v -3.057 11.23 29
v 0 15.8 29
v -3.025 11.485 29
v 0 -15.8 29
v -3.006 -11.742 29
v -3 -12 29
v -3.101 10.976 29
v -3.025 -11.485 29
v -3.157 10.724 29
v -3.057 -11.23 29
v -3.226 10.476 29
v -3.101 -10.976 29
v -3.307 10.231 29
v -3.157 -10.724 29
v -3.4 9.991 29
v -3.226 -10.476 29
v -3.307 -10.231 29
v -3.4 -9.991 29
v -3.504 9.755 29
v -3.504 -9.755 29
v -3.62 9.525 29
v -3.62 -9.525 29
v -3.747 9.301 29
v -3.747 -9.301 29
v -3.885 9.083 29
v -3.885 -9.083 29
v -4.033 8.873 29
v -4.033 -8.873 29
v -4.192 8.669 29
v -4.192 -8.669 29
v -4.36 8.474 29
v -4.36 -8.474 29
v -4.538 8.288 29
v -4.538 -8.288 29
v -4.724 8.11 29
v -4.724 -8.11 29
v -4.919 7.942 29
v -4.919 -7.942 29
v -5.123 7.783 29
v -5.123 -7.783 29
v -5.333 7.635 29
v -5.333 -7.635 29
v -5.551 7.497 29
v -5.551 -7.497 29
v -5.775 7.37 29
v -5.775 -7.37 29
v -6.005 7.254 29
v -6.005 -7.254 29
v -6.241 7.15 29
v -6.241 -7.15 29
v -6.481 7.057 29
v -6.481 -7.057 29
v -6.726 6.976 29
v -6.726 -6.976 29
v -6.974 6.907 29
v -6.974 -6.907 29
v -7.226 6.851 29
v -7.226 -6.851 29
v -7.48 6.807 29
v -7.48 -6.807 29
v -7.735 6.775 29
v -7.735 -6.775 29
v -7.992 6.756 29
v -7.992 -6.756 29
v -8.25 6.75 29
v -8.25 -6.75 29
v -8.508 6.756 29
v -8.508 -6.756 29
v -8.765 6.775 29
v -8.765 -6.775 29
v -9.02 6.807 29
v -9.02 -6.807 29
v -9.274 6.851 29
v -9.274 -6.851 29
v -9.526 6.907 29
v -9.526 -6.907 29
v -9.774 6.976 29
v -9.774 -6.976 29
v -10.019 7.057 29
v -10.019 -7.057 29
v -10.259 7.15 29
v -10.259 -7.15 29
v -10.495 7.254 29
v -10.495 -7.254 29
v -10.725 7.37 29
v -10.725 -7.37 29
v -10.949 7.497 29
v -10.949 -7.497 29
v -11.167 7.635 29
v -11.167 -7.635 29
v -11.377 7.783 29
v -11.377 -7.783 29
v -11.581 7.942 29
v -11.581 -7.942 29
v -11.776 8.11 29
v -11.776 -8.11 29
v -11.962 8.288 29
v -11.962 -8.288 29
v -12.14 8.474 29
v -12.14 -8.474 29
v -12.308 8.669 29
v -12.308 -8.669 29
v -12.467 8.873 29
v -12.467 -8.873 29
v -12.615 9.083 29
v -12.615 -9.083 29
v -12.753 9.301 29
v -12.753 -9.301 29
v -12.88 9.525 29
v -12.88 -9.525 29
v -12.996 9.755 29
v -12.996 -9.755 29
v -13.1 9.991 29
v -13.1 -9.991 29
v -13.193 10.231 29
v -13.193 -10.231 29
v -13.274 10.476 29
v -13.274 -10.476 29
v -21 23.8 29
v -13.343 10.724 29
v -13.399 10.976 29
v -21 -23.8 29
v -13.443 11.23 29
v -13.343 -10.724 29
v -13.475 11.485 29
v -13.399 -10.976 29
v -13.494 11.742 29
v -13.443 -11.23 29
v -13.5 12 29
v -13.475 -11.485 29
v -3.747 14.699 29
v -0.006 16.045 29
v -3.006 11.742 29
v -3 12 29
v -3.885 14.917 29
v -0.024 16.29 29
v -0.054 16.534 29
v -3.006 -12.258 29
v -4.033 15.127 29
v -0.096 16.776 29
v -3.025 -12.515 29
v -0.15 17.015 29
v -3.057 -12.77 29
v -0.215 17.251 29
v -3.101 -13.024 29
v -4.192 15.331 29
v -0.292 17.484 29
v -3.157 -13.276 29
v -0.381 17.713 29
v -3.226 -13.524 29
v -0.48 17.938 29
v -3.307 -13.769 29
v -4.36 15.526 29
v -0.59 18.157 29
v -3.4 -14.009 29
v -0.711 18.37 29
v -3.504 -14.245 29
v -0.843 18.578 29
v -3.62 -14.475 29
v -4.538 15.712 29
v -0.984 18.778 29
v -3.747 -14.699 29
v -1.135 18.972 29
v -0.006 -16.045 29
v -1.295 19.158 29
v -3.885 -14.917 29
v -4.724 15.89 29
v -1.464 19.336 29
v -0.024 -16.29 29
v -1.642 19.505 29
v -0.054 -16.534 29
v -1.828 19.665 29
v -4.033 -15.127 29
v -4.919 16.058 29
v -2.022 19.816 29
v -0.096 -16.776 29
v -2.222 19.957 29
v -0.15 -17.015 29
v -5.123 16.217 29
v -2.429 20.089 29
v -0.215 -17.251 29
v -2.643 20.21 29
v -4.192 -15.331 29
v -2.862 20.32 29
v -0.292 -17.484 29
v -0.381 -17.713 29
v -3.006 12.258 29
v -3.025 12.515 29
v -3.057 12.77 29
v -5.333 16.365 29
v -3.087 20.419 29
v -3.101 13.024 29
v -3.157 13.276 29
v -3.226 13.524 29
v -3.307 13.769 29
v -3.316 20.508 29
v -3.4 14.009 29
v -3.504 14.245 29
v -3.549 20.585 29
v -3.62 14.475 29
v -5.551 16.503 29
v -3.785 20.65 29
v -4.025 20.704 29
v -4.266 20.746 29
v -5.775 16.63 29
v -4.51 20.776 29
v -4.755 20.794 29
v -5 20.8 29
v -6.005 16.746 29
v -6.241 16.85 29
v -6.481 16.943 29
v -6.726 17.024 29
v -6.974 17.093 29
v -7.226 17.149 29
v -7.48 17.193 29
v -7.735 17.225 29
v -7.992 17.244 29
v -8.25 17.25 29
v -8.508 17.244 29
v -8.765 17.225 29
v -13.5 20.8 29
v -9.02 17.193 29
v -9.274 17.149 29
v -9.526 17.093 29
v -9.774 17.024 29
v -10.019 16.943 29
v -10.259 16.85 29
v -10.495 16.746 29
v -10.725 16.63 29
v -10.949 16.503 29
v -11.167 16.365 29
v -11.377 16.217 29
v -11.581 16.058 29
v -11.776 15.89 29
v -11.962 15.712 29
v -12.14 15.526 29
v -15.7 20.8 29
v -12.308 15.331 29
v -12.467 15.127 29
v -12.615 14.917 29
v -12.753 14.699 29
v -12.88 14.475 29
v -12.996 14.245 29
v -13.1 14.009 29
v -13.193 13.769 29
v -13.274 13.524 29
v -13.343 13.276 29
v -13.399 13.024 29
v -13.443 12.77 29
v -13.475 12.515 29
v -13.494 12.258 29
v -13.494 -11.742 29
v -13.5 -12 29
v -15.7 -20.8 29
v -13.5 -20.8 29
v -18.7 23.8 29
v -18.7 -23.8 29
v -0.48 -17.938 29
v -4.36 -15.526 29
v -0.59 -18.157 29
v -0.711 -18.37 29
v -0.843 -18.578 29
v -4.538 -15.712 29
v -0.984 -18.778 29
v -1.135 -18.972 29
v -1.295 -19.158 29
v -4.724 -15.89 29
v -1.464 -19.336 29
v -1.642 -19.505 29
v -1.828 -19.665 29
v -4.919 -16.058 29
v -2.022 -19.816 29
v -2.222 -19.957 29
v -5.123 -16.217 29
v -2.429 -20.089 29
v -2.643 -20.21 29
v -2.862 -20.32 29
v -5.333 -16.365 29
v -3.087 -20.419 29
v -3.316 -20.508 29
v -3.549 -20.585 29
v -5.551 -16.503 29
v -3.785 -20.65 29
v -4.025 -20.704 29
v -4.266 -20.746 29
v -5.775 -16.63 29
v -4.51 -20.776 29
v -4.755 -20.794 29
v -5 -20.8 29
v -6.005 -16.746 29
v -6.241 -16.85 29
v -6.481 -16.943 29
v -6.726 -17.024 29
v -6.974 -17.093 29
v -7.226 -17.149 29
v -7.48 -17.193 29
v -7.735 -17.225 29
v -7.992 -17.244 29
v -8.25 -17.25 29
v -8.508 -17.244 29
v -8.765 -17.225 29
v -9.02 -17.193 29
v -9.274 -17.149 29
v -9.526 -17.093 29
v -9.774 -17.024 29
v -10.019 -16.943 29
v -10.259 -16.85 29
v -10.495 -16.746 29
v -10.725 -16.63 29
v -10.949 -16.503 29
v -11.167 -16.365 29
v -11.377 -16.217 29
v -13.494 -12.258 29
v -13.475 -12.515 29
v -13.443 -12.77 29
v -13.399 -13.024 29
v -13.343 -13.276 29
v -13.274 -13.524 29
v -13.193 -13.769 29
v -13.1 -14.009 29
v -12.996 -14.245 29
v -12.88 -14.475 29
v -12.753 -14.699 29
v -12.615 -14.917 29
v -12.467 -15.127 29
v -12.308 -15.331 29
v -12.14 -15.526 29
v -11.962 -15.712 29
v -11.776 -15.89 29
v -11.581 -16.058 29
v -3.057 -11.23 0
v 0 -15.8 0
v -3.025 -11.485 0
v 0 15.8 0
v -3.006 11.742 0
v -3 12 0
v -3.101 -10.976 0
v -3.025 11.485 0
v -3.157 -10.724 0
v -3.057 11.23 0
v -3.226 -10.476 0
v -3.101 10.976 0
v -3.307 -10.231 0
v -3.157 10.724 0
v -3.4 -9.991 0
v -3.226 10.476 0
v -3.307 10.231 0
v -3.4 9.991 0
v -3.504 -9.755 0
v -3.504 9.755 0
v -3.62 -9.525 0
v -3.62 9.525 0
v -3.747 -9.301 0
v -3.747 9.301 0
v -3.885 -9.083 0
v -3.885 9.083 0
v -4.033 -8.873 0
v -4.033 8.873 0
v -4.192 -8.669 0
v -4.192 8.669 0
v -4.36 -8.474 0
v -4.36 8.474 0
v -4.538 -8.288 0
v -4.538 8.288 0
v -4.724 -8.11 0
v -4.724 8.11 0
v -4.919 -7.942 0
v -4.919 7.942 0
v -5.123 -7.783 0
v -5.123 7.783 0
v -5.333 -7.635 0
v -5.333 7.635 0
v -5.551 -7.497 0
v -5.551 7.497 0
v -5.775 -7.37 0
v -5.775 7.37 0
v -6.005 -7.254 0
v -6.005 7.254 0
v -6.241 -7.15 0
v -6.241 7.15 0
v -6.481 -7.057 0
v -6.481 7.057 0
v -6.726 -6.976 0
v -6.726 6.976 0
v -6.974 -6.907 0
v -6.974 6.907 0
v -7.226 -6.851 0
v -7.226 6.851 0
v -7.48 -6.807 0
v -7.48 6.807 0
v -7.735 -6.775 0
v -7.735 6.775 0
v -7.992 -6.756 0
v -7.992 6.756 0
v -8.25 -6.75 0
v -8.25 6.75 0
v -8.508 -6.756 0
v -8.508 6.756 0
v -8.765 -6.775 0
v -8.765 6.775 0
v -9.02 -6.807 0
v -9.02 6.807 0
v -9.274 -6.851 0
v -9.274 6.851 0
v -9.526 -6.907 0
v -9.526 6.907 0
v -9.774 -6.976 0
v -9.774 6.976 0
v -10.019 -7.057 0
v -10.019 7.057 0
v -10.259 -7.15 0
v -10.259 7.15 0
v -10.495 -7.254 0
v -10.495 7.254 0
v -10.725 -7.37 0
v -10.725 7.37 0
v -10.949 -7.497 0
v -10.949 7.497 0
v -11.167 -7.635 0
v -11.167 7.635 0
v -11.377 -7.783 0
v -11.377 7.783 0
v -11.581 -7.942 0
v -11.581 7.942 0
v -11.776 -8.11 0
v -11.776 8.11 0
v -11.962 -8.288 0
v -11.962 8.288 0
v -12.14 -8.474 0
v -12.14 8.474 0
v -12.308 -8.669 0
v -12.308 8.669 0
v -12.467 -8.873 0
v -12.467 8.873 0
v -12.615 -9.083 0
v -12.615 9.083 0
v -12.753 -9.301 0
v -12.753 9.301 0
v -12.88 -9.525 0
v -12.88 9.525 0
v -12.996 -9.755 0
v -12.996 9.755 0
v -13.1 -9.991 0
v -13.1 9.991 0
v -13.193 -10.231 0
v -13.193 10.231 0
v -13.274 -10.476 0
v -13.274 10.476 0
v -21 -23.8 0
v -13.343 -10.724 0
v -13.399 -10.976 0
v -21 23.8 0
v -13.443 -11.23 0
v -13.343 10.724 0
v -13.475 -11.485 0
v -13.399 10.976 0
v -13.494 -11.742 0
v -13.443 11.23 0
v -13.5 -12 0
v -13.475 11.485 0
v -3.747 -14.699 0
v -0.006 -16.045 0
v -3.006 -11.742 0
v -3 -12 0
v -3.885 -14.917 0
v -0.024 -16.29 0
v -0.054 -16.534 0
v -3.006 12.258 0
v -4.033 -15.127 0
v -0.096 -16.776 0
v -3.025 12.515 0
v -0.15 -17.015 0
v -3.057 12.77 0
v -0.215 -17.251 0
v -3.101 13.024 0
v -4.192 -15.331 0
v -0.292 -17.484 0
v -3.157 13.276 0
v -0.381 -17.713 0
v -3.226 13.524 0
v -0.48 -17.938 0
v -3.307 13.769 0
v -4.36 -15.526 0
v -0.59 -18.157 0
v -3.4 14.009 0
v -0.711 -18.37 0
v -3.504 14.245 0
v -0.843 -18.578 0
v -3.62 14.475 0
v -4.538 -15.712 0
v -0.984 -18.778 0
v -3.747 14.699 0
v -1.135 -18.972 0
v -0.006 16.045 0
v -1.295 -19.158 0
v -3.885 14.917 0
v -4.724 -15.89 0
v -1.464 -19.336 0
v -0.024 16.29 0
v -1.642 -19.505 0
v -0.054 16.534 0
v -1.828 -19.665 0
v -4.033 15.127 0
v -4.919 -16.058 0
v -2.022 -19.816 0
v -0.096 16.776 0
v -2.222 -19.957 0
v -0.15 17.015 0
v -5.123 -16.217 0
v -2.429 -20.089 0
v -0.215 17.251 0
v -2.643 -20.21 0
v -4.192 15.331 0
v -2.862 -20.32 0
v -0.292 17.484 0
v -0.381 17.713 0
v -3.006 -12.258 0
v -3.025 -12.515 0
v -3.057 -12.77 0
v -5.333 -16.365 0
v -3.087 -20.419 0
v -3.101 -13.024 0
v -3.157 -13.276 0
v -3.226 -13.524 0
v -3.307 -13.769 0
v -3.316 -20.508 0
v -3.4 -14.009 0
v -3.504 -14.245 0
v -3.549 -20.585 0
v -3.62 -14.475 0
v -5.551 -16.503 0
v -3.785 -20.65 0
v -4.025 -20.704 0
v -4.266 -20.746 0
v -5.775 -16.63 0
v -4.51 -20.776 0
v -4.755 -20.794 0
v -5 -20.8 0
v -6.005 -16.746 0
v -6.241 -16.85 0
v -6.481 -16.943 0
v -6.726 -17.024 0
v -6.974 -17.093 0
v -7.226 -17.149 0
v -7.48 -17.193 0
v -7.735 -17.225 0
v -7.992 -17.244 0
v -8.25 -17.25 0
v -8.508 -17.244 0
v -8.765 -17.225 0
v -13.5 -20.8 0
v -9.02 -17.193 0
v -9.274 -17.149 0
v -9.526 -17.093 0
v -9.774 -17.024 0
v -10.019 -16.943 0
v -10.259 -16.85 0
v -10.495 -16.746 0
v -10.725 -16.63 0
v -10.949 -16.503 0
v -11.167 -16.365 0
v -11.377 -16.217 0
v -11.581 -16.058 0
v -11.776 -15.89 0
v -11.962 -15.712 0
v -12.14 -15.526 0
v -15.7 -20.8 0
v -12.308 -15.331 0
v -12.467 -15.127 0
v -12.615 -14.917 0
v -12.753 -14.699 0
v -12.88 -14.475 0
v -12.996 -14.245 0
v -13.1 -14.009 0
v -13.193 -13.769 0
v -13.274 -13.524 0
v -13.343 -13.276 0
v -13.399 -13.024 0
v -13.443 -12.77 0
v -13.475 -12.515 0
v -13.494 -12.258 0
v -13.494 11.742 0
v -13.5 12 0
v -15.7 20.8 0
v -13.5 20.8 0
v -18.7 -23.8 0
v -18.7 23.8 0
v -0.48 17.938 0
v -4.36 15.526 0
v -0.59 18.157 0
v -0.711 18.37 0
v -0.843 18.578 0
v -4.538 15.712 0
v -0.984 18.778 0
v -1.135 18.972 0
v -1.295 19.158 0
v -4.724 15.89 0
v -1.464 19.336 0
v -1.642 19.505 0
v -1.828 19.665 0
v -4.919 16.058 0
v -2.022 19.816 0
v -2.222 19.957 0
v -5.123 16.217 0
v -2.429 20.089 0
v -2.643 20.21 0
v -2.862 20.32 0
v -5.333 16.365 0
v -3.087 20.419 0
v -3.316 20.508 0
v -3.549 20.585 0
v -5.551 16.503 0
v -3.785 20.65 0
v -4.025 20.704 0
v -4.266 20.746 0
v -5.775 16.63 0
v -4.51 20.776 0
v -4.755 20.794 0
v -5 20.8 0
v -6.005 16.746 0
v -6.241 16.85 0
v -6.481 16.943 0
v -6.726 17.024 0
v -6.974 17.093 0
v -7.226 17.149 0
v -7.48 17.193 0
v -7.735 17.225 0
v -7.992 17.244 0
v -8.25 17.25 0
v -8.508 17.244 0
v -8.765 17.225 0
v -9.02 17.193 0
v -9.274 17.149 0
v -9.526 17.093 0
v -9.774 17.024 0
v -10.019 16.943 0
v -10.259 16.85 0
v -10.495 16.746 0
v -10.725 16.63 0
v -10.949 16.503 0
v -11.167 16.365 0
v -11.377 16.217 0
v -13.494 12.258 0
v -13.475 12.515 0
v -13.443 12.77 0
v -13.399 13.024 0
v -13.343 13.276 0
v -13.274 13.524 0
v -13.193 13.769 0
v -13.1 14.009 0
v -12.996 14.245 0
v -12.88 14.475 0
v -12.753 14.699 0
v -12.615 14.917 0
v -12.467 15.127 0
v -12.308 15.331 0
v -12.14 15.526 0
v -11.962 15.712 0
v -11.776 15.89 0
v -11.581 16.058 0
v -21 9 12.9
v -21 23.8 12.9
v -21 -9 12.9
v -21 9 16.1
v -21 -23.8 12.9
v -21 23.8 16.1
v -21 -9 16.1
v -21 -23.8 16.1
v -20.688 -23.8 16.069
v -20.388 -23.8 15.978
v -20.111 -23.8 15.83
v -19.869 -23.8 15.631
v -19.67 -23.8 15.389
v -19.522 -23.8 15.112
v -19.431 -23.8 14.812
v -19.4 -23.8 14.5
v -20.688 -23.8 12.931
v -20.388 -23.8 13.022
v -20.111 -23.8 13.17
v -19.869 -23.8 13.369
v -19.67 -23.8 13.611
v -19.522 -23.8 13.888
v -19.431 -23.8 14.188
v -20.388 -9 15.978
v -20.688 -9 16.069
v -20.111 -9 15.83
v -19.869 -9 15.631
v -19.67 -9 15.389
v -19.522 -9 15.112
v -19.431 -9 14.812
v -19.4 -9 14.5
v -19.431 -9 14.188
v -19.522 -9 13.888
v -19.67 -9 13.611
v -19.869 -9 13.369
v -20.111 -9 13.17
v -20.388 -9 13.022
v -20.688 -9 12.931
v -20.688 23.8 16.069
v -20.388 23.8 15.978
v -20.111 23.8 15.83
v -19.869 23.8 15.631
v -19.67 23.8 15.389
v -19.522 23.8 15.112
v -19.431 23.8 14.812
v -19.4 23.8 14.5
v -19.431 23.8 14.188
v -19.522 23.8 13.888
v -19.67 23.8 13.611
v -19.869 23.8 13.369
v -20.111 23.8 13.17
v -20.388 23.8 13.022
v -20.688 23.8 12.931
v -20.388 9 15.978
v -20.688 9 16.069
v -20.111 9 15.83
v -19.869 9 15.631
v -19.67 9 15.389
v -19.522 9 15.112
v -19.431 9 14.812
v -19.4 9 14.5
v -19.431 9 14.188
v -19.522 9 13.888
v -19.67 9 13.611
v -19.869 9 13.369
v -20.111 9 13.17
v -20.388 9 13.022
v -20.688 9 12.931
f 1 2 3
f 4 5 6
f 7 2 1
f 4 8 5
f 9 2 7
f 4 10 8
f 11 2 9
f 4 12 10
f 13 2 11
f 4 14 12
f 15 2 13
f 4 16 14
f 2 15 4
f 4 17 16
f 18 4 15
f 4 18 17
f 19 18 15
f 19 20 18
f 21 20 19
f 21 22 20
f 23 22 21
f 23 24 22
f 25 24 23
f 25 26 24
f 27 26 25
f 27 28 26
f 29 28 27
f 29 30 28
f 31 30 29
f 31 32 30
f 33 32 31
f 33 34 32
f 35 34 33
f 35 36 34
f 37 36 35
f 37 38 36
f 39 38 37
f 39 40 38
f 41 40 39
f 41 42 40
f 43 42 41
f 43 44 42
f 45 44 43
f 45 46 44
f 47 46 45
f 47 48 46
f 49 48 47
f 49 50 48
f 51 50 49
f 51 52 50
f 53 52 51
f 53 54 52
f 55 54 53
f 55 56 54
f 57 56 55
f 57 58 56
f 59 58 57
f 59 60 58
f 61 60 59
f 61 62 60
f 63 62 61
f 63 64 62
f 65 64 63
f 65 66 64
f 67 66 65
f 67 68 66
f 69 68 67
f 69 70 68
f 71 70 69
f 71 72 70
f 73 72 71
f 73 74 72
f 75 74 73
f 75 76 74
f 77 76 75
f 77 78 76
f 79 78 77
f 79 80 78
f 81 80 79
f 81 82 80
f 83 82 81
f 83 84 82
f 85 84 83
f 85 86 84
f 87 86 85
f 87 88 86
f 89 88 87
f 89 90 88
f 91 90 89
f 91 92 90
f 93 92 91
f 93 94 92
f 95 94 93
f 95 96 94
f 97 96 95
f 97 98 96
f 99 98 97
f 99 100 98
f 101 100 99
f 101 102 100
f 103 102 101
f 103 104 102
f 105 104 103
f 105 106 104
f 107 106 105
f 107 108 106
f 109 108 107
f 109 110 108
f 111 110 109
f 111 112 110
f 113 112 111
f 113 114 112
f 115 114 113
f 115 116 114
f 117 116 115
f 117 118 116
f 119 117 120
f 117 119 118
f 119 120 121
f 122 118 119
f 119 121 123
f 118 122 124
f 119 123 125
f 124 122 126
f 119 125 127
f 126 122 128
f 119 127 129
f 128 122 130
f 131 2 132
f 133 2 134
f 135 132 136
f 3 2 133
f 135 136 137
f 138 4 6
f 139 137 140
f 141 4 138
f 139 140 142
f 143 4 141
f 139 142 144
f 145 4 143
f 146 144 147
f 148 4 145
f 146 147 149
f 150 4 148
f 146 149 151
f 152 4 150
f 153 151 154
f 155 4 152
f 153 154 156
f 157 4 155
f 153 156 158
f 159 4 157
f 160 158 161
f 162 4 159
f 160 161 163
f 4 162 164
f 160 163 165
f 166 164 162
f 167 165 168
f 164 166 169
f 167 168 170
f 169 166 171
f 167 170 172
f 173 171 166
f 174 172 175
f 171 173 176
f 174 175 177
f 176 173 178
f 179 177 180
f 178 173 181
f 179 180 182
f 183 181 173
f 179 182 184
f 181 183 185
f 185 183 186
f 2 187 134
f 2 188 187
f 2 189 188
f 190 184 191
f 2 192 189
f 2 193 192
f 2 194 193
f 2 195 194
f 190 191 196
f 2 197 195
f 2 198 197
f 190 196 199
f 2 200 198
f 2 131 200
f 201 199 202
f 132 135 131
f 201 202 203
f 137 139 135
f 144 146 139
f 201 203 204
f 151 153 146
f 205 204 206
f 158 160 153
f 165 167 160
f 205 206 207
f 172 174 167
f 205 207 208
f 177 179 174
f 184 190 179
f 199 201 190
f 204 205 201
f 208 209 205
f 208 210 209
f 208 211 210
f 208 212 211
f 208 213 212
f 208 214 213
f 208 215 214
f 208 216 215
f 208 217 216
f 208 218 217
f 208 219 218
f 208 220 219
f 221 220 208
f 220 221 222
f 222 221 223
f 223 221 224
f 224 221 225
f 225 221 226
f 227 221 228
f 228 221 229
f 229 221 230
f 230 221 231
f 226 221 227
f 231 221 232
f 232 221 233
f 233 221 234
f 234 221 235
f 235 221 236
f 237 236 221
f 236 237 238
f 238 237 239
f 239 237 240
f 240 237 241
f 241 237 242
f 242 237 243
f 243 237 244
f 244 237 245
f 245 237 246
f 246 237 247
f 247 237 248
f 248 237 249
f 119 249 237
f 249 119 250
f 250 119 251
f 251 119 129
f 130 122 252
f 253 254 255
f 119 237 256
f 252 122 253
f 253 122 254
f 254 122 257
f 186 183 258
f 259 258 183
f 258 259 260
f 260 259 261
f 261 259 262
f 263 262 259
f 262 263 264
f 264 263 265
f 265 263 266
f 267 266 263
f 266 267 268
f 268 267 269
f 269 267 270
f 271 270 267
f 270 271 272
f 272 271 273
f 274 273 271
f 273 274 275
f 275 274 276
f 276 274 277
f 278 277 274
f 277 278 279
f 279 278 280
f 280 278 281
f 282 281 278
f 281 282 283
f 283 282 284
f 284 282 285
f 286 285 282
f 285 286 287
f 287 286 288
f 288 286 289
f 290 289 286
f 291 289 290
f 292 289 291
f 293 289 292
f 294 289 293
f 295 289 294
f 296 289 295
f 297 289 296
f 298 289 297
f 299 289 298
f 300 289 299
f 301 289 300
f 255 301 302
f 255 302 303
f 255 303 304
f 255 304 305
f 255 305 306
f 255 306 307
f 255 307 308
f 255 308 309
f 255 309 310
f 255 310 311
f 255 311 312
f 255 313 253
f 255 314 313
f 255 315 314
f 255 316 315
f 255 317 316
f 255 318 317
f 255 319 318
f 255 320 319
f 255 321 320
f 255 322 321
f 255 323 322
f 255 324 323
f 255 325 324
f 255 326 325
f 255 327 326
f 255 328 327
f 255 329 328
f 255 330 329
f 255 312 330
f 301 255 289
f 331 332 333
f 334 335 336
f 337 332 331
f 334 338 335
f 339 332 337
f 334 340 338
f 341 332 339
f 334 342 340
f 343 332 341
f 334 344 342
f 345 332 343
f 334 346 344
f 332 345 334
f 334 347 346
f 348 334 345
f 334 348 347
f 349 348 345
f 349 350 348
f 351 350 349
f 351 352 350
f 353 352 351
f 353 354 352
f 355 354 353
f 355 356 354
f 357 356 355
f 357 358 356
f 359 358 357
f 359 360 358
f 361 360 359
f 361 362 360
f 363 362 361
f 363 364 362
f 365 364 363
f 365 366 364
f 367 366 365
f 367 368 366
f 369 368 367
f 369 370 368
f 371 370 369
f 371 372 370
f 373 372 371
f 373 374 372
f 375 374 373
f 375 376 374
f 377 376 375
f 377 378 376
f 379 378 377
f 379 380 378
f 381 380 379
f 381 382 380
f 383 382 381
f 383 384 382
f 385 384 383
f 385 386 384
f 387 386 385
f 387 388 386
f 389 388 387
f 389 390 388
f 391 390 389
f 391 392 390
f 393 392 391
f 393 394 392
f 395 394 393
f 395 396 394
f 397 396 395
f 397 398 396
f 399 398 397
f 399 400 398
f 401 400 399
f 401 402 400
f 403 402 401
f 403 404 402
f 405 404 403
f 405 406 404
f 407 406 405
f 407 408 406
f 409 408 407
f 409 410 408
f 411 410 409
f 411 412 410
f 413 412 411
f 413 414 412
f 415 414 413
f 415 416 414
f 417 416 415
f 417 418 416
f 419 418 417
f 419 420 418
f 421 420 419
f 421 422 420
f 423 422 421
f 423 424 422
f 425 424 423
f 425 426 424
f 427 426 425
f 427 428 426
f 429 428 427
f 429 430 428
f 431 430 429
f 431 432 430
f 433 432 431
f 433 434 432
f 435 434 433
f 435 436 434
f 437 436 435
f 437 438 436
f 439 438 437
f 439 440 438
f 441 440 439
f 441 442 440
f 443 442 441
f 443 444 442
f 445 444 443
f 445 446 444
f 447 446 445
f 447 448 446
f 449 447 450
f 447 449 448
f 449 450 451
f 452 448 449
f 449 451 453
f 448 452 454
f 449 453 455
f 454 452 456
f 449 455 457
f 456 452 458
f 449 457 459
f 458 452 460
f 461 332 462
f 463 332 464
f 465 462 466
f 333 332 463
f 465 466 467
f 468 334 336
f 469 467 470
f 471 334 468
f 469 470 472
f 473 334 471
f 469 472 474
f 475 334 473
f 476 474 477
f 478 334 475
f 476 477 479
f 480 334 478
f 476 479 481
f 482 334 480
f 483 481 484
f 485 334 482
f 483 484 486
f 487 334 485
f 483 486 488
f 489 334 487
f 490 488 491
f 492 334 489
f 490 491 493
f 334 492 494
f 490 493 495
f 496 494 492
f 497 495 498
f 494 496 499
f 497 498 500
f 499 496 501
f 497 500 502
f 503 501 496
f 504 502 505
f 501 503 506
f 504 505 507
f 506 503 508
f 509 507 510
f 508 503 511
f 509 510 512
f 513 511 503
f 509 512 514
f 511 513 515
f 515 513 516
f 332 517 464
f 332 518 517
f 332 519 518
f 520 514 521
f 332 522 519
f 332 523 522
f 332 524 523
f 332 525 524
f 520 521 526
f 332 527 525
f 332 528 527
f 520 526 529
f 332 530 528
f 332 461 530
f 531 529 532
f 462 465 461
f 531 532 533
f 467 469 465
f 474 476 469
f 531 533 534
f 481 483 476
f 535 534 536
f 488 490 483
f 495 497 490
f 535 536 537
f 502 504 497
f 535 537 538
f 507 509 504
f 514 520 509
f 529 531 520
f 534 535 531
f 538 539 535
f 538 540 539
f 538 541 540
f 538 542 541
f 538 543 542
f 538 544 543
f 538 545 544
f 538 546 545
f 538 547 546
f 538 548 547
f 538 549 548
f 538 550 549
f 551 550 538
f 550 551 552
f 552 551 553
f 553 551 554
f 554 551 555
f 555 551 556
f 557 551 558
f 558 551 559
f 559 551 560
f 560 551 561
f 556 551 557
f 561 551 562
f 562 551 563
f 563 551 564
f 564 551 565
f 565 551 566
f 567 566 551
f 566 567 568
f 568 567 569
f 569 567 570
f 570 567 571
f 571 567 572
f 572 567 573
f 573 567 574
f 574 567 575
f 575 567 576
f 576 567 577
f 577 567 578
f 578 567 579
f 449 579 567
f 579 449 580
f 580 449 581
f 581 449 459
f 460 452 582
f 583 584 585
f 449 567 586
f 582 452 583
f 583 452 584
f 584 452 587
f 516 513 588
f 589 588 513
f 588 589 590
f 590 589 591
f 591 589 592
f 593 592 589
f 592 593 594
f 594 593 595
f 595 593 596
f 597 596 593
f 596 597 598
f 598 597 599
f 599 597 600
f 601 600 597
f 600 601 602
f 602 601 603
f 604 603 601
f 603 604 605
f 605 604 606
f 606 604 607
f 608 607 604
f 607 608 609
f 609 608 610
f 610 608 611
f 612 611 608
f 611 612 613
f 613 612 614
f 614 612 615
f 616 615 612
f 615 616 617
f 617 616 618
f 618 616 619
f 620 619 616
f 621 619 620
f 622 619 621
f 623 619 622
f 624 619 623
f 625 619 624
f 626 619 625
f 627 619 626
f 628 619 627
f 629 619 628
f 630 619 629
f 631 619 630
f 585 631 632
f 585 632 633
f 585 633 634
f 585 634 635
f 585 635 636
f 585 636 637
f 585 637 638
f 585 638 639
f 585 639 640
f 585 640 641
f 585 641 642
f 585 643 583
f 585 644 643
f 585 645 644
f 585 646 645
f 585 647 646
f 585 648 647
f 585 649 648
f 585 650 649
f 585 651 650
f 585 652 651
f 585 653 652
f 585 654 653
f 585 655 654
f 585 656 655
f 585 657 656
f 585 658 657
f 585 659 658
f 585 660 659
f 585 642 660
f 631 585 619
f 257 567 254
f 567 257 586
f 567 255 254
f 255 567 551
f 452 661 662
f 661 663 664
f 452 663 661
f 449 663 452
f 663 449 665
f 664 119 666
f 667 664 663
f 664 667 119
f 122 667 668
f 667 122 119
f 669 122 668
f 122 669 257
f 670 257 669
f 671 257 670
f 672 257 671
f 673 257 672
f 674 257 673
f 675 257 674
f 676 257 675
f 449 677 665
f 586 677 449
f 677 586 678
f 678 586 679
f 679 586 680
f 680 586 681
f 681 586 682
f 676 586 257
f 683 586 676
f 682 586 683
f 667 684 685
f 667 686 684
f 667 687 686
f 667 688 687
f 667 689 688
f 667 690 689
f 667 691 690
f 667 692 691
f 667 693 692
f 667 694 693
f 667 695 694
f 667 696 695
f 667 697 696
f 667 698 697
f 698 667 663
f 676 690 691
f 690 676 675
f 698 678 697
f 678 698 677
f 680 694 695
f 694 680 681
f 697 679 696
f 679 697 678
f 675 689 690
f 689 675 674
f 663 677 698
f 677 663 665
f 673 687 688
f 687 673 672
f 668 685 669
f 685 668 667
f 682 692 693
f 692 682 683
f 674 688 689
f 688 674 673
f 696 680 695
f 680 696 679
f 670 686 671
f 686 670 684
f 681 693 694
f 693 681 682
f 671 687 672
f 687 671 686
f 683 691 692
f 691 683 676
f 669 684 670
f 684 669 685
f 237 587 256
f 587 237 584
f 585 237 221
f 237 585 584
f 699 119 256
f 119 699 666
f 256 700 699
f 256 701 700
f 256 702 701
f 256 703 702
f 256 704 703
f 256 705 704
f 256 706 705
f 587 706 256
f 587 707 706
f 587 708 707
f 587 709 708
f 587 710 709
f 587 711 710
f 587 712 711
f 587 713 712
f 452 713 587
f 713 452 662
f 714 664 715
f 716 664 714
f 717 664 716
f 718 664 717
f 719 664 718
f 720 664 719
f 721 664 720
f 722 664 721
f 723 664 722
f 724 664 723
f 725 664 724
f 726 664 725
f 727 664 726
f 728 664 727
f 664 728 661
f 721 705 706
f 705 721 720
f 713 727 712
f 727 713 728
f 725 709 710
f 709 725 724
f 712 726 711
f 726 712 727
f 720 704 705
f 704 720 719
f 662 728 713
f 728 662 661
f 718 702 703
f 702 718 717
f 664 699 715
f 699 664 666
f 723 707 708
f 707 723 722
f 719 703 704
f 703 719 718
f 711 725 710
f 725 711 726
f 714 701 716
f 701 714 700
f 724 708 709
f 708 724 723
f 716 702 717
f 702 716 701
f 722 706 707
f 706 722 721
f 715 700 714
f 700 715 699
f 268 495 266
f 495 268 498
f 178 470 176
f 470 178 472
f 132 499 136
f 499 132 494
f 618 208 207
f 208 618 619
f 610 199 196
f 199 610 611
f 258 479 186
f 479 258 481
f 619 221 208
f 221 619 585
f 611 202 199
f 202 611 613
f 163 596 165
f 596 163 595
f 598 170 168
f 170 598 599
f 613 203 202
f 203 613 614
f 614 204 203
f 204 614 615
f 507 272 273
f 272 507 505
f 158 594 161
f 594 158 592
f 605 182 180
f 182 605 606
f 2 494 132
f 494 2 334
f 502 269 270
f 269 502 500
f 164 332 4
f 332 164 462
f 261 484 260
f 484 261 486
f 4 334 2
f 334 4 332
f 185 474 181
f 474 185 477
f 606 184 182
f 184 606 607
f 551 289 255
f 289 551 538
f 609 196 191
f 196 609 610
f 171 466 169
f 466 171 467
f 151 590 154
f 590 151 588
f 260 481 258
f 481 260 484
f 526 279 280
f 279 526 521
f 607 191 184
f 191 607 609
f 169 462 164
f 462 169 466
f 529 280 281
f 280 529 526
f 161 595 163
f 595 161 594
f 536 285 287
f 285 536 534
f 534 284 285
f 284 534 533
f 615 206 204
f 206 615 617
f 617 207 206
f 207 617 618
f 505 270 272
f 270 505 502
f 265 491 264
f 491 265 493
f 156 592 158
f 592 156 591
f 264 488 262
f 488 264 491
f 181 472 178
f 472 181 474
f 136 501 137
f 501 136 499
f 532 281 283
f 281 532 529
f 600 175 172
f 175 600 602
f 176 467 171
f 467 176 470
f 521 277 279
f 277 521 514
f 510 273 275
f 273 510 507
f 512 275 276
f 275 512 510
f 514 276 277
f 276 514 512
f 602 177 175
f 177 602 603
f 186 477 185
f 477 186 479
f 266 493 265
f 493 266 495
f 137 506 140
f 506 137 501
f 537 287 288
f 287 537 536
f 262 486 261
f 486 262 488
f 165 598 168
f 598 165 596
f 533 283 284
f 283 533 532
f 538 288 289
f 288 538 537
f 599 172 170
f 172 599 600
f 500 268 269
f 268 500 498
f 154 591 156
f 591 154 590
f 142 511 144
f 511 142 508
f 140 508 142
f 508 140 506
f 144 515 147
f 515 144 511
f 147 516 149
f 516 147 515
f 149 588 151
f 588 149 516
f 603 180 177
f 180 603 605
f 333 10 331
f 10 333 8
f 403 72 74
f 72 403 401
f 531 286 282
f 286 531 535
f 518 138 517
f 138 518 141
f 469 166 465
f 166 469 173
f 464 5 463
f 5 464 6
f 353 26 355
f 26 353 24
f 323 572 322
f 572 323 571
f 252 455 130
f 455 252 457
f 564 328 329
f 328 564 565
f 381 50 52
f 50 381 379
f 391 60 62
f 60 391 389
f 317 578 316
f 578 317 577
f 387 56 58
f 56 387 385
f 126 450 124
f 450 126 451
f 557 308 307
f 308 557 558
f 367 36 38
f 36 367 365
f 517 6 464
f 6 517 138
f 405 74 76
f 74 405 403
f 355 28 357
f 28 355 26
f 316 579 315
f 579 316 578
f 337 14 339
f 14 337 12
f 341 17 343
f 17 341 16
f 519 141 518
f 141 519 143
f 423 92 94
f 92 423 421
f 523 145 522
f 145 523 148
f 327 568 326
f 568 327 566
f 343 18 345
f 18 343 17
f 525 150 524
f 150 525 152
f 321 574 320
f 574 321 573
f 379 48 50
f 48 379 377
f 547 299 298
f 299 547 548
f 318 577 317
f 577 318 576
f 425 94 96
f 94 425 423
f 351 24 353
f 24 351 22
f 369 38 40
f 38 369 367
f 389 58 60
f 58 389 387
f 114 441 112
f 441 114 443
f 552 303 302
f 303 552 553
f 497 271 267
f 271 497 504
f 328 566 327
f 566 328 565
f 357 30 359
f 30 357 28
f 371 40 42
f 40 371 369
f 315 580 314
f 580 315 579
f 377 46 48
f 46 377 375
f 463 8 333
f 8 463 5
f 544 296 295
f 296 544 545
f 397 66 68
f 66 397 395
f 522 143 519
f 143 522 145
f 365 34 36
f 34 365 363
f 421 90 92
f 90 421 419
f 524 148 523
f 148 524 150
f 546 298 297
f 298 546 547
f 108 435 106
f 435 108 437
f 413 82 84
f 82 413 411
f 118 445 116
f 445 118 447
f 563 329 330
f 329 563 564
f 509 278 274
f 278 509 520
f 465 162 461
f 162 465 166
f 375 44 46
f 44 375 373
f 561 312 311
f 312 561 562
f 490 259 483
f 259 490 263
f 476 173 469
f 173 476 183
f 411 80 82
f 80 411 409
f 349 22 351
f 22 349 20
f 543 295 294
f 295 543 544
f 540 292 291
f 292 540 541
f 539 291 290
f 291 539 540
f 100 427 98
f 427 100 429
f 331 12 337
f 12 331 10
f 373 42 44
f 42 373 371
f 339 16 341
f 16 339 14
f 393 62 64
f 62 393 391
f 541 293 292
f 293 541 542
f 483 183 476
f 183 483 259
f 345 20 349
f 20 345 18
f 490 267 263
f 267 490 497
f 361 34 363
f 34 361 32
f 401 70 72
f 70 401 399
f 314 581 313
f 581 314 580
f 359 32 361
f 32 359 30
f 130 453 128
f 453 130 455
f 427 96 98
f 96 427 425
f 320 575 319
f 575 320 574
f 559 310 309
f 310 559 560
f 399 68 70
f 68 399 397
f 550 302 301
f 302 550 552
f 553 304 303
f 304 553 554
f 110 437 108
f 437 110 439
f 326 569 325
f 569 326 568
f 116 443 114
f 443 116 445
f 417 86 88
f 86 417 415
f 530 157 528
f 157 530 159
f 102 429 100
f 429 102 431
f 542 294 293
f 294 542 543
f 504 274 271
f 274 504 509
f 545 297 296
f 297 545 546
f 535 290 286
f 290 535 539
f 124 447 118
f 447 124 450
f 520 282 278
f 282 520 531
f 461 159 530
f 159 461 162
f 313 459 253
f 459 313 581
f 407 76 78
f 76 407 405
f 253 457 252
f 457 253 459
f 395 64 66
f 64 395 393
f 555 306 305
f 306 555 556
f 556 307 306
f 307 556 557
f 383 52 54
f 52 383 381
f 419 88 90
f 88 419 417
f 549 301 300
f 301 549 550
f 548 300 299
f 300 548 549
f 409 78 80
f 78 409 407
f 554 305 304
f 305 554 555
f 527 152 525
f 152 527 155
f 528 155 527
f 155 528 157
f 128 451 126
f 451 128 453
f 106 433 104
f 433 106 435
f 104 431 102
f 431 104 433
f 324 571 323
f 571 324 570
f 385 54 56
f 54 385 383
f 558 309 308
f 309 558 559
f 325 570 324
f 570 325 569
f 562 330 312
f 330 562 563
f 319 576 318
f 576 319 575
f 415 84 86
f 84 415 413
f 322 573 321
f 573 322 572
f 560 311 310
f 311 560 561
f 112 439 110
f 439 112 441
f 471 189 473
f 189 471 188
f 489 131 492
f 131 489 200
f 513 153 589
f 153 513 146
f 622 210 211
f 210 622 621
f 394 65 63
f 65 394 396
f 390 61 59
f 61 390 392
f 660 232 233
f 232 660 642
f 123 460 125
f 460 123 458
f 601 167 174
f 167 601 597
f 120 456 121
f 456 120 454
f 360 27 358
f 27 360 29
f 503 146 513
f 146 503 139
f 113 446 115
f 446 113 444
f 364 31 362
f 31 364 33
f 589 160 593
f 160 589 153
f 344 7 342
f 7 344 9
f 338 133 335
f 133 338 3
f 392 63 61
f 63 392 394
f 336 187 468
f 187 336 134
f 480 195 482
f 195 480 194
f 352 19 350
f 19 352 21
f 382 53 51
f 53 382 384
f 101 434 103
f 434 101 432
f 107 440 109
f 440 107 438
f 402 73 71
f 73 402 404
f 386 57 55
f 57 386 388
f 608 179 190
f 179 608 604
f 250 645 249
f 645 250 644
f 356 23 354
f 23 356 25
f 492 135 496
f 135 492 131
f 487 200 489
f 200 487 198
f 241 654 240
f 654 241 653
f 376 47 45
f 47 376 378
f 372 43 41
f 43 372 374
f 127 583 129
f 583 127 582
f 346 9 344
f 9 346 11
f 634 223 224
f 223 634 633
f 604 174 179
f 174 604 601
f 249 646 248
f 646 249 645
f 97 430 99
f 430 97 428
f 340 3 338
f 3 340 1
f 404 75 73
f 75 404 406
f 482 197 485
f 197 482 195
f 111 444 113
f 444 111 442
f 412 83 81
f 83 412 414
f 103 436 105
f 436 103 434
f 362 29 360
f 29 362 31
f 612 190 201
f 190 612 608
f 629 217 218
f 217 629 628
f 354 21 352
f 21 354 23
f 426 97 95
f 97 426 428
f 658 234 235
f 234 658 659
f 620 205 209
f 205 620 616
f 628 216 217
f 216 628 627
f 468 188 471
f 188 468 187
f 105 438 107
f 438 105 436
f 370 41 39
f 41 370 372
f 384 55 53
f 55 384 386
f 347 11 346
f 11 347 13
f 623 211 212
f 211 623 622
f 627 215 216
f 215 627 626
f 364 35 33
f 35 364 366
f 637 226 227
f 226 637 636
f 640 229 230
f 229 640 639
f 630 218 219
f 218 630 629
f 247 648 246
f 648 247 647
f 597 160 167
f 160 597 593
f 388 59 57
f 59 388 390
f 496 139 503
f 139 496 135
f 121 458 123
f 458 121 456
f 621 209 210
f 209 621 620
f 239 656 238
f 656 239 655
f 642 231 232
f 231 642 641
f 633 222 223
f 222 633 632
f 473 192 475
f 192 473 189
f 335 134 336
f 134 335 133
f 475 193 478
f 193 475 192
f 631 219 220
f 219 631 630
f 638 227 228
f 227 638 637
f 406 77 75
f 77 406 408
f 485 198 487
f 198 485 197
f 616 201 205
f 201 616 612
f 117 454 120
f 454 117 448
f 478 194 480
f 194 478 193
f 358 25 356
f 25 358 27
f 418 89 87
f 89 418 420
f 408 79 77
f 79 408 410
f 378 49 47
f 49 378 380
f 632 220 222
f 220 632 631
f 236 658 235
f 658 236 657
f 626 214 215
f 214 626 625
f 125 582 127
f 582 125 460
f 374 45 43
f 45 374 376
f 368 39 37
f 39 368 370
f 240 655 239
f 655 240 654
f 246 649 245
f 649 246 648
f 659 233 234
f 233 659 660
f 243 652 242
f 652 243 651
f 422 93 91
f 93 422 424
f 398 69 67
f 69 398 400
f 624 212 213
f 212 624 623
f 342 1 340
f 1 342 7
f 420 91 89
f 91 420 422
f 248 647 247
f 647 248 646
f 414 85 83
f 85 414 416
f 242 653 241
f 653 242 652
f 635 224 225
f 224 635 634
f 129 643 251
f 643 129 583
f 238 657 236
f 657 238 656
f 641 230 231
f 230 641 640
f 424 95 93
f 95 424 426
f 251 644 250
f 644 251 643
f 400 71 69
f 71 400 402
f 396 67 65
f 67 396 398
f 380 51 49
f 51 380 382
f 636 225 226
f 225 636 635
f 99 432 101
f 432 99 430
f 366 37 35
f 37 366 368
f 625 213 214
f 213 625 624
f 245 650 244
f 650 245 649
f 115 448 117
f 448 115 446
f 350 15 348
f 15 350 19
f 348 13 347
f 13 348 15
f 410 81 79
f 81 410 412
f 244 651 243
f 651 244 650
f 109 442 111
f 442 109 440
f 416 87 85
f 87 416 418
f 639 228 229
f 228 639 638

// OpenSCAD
// file: ../../lib/utils.scad
include <../variables.scad>

use <./Round-Anything/polyround.scad>


module mirrorCopy(v, mirrorOffset=0) {
  children();

  translate([v[0]*mirrorOffset, v[1]*mirrorOffset, v[2]*mirrorOffset])
  mirror(v)
  translate([-v[0]*mirrorOffset, -v[1]*mirrorOffset, -v[2]*mirrorOffset])
  children();
}

module mirrorRotate(r) {
  children();

  rotate(r)
  children();
}


module draft(vertical, offs) {
  hull() {
    translate([0, 0, vertical])linear_extrude(0.01)children();
    linear_extrude(0.01)offset(offs)children();
  }
}

module roundedCube(dimen, radii, center=false) {
  translate(center ? [-dimen.x/2, -dimen.y/2, -dimen.z/2] : [0, 0, 0])
  linear_extrude(dimen.z)
  polygon(polyRound([
    [0, 0, is_num(radii) ? radii : radii[0]],
    [dimen.x, 0, is_num(radii) ? radii : radii[1]],
    [dimen.x, dimen.y, is_num(radii) ? radii : radii[2]],
    [0, dimen.y, is_num(radii) ? radii : radii[3]],
  ], fn=$pfn));
}

module HeatsetInsertHole(bottom=false) {
  translate([0, 0, bottom ? 0 : -HeatsetInsert_height]) {

    rotate_extrude()
    polygon([
      [0, 0],
      [0, HeatsetInsert_height],
      [HeatsetInsert_diameter/2, HeatsetInsert_height],
      [HeatsetInsert_diameter/2, HeatsetInsert_height-HeatsetInsert_full_depth],
      [HeatsetInsert_diameter/2+HeatsetInsert_extra_radius, HeatsetInsert_height-HeatsetInsert_full_depth-HeatsetInsert_extra_radius],
      [HeatsetInsert_diameter/2+HeatsetInsert_extra_radius, 0],
    ]);
  }
}

function roundedRectangle(width, height, radius) =
  polyRound([
    [width/2, height/2, radius],
    [-width/2, height/2, radius],
    [-width/2, -height/2, radius],
    [width/2, -height/2, radius],
  ], fn=$pfn);


module ChamferPyramid(l)       polyhedron(
  //        P0        P1        P2         P3       P4
  points= [[l,l,0], [l,-l,0], [-l,-l,0], [-l,l,0], [0,0,l]],
  faces=  [[0,1,4], [1,2,4],  [2,3,4],    [3,0,4], [1,0,3],  [2,1,3] ]
 );

/**
 * Produces a rail with a smaller plate to attach to, and a bigger base that
 * holds it in the opposite rail. The rail is centered on one of the long edges
 * of the plate that can be built upon, ranging wide in both x directions and
 * short into the positive y direction.
 */
module MountRail(clearance=MountRail_clearance) {
  translate([0, 0, -MountRail_total_height ])
  rotate([90, 0, 180])
  mirrorCopy([1, 0, 0])
  difference() {
    linear_extrude(MountRail_width,convexity=2)
    polygon([
      [0, 0],
      [MountRail_base_width/2-clearance, 0],
      [MountRail_base_width/2-clearance, MountRail_base_height-clearance],
      [MountRail_plate_width/2-clearance, MountRail_base_height+MountRail_chamfer_height-clearance],
      [MountRail_plate_width/2-clearance, MountRail_total_height],
      [0, MountRail_base_height+MountRail_chamfer_height+MountRail_plate_distance]
    ]);

    translate([MountRail_base_width/2, 0, MountRail_width/2])
    rotate([0, -90, 0])
      cylinder(r=MountRail_pin_radius, h=MountRail_pin_length, $fn=32);
  }
}

module ScrewHole(
  depth, // total depth, including head
  diameter=ScrewHole_diameter_M3,
  head_depth=0,
  head_diameter=0,
  elongation=0,
) {
  union () {
    // Screw head hole or slot
    if (head_depth > 0) {
      head_diameter_actual = head_diameter ? head_diameter  : diameter * 2;

      hull() {
        for(i=elongation ? [-1,1] : 0)
        translate([i*elongation/2, 0, -head_depth])
        cylinder(d=head_diameter_actual, h=head_depth);
      }
    }

    // Screw hole or slot
    hull() {
      for(i=elongation ? [-1,1] : 0)
      translate([i*elongation/2, 0, -depth])
      cylinder(d=diameter, h=depth);
    }
  }
}

module ScrewHoleM3(depth, head_depth=0, elongation=0) {
  ScrewHole(
    depth,
    diameter=ScrewHole_diameter_M3,
    head_depth=head_depth,
    head_diameter=ScrewHole_diameter_M3*2,
    elongation=elongation
  );
}
// main file
include <../../variables.scad>

use <../../lib/Round-Anything/polyround.scad>
use <../../lib/utils.scad>

module BikeRackMountSide() {
  r1 = 1;
  w = 8;
  W = 20;
  r2 = BikeRackMount_rail_diameter/2 + w;
  r3 = 4;

  difference() {
    rotate([90, 0, -90])
    linear_extrude(BikeRackMountSide_length, center=true, convexity=2)
    polygon(polyRound([
      [0, 0, r1],
      [W, 0, r1],

      [W, -r2/2, r2],
      // [W - r2, -r2, 0],
      // [w + r3, -r2, 0],
      [w, -r2, r2],
      [w, -BikeRackMountSide_height, r1],
      [0, -BikeRackMountSide_height, r1],
    ], fn=$pfn));

    // rail
    translate([-10, -W/2, 0])
    rotate([90, 0, -90])
    cylinder(d=BikeRackMount_rail_diameter, h=BikeRackMountSide_length+20, center=true);

    // zip ties
    for(i=[-1,1])
    translate([i*BikeRackMount_rod_distance/2, 0, -2])
    intersection() {
      translate([-50, -50, -100])
      cube(100);

      difference() {
        translate([0, -W/2, 0])
        rotate([90, 0, -90])
        cylinder(r=W/2+3, h=BikeRackMountSide_channel_width, center=true);

        translate([0, -W/2, 0])
        rotate([90, 0, -90])
        cylinder(r=W/2, h=BikeRackMountSide_channel_width, center=true);
      }
    }

    rotate([0, 0, 90])
    RodHoles();
  }
}

module RodHoles() {
  // holes for cross rods
  for(i=[-1,1])
  translate([0, i*BikeRackMount_rod_distance/2, -BikeRackMountSide_height + BikeRackMount_rod_diameter/2+BikeRackMount_bottom_spacing])
  rotate([0, 90, 0])
  cylinder(d=BikeRackMount_rod_diameter, h=100, center=true);
}


vertical_offset = 10;

module BikeRackMountCenter(longitudinal=false) {

  difference() {
    union () {
      translate([MountRail_width/2, 0, -vertical_offset-MountRail_total_height])
      rotate([0, 0, 90])
      mirror([0, 0, 1])
      MountRail(MountRail_clearance);

      w = MountRail_plate_width - 2 * MountRail_clearance;
      r = 5;

      if (longitudinal) {
        difference() {
          hull()
          for(x=[-1,1])
          for(z=[-vertical_offset-r, -BikeRackMountSide_height+r])
          translate([x*((BikeRackMount_rod_distance+BikeRackMount_rod_diameter+BikeRackMount_bottom_spacing*2)/2-r), 0, z])
          rotate([-90, 0, 0])
          cylinder(r=r, h=w/2, center=true);

          // cut away the center so it does not overlap and fill the pin channels in the mount
          translate([0, 0, -vertical_offset])
          cube([5, 200, 5], center=true);
        }
      } else {
        hull () {
          translate([-MountRail_width/2, -w/2, -BikeRackMountSide_height+r])
          cube([MountRail_width, w, BikeRackMountSide_height-vertical_offset-MountRail_total_height-r]);

          for(i=[-1,1])
          translate([-MountRail_width/2, i*(w/2-r), -BikeRackMountSide_height+r])
          rotate([0, 90, 0])
          cylinder(r=r, h=MountRail_width);
        }
      }
    }

    if (longitudinal) {
      rotate([0, 0, 90])
      RodHoles();
    } else {
      RodHoles();
    }
  }
}

module BikeRackMountDebug() {
  translate([-60, 0, 0])
  rotate([0, 0, -90])
  BikeRackMountSide();

  rotate([0, 0, 180])
  translate([-60, 0, 0])
  rotate([0, 0, -90])
  BikeRackMountSide();

  BikeRackMountCenter();

  %for(i=[-1,1])
  translate([0, i*BikeRackMount_rod_distance/2, -BikeRackMountSide_height + BikeRackMount_rod_diameter/2+BikeRackMount_bottom_spacing])
  rotate([0, 90, 0])
  cylinder(d=BikeRackMount_rod_diameter, h=200, center=true);
}

// !BikeRackMountCenter();

translate([0, 0, MountRail_width/2])
rotate([0, -90, 0])
translate([0, 0, BikeRackMountSide_height])
BikeRackMountCenter();
